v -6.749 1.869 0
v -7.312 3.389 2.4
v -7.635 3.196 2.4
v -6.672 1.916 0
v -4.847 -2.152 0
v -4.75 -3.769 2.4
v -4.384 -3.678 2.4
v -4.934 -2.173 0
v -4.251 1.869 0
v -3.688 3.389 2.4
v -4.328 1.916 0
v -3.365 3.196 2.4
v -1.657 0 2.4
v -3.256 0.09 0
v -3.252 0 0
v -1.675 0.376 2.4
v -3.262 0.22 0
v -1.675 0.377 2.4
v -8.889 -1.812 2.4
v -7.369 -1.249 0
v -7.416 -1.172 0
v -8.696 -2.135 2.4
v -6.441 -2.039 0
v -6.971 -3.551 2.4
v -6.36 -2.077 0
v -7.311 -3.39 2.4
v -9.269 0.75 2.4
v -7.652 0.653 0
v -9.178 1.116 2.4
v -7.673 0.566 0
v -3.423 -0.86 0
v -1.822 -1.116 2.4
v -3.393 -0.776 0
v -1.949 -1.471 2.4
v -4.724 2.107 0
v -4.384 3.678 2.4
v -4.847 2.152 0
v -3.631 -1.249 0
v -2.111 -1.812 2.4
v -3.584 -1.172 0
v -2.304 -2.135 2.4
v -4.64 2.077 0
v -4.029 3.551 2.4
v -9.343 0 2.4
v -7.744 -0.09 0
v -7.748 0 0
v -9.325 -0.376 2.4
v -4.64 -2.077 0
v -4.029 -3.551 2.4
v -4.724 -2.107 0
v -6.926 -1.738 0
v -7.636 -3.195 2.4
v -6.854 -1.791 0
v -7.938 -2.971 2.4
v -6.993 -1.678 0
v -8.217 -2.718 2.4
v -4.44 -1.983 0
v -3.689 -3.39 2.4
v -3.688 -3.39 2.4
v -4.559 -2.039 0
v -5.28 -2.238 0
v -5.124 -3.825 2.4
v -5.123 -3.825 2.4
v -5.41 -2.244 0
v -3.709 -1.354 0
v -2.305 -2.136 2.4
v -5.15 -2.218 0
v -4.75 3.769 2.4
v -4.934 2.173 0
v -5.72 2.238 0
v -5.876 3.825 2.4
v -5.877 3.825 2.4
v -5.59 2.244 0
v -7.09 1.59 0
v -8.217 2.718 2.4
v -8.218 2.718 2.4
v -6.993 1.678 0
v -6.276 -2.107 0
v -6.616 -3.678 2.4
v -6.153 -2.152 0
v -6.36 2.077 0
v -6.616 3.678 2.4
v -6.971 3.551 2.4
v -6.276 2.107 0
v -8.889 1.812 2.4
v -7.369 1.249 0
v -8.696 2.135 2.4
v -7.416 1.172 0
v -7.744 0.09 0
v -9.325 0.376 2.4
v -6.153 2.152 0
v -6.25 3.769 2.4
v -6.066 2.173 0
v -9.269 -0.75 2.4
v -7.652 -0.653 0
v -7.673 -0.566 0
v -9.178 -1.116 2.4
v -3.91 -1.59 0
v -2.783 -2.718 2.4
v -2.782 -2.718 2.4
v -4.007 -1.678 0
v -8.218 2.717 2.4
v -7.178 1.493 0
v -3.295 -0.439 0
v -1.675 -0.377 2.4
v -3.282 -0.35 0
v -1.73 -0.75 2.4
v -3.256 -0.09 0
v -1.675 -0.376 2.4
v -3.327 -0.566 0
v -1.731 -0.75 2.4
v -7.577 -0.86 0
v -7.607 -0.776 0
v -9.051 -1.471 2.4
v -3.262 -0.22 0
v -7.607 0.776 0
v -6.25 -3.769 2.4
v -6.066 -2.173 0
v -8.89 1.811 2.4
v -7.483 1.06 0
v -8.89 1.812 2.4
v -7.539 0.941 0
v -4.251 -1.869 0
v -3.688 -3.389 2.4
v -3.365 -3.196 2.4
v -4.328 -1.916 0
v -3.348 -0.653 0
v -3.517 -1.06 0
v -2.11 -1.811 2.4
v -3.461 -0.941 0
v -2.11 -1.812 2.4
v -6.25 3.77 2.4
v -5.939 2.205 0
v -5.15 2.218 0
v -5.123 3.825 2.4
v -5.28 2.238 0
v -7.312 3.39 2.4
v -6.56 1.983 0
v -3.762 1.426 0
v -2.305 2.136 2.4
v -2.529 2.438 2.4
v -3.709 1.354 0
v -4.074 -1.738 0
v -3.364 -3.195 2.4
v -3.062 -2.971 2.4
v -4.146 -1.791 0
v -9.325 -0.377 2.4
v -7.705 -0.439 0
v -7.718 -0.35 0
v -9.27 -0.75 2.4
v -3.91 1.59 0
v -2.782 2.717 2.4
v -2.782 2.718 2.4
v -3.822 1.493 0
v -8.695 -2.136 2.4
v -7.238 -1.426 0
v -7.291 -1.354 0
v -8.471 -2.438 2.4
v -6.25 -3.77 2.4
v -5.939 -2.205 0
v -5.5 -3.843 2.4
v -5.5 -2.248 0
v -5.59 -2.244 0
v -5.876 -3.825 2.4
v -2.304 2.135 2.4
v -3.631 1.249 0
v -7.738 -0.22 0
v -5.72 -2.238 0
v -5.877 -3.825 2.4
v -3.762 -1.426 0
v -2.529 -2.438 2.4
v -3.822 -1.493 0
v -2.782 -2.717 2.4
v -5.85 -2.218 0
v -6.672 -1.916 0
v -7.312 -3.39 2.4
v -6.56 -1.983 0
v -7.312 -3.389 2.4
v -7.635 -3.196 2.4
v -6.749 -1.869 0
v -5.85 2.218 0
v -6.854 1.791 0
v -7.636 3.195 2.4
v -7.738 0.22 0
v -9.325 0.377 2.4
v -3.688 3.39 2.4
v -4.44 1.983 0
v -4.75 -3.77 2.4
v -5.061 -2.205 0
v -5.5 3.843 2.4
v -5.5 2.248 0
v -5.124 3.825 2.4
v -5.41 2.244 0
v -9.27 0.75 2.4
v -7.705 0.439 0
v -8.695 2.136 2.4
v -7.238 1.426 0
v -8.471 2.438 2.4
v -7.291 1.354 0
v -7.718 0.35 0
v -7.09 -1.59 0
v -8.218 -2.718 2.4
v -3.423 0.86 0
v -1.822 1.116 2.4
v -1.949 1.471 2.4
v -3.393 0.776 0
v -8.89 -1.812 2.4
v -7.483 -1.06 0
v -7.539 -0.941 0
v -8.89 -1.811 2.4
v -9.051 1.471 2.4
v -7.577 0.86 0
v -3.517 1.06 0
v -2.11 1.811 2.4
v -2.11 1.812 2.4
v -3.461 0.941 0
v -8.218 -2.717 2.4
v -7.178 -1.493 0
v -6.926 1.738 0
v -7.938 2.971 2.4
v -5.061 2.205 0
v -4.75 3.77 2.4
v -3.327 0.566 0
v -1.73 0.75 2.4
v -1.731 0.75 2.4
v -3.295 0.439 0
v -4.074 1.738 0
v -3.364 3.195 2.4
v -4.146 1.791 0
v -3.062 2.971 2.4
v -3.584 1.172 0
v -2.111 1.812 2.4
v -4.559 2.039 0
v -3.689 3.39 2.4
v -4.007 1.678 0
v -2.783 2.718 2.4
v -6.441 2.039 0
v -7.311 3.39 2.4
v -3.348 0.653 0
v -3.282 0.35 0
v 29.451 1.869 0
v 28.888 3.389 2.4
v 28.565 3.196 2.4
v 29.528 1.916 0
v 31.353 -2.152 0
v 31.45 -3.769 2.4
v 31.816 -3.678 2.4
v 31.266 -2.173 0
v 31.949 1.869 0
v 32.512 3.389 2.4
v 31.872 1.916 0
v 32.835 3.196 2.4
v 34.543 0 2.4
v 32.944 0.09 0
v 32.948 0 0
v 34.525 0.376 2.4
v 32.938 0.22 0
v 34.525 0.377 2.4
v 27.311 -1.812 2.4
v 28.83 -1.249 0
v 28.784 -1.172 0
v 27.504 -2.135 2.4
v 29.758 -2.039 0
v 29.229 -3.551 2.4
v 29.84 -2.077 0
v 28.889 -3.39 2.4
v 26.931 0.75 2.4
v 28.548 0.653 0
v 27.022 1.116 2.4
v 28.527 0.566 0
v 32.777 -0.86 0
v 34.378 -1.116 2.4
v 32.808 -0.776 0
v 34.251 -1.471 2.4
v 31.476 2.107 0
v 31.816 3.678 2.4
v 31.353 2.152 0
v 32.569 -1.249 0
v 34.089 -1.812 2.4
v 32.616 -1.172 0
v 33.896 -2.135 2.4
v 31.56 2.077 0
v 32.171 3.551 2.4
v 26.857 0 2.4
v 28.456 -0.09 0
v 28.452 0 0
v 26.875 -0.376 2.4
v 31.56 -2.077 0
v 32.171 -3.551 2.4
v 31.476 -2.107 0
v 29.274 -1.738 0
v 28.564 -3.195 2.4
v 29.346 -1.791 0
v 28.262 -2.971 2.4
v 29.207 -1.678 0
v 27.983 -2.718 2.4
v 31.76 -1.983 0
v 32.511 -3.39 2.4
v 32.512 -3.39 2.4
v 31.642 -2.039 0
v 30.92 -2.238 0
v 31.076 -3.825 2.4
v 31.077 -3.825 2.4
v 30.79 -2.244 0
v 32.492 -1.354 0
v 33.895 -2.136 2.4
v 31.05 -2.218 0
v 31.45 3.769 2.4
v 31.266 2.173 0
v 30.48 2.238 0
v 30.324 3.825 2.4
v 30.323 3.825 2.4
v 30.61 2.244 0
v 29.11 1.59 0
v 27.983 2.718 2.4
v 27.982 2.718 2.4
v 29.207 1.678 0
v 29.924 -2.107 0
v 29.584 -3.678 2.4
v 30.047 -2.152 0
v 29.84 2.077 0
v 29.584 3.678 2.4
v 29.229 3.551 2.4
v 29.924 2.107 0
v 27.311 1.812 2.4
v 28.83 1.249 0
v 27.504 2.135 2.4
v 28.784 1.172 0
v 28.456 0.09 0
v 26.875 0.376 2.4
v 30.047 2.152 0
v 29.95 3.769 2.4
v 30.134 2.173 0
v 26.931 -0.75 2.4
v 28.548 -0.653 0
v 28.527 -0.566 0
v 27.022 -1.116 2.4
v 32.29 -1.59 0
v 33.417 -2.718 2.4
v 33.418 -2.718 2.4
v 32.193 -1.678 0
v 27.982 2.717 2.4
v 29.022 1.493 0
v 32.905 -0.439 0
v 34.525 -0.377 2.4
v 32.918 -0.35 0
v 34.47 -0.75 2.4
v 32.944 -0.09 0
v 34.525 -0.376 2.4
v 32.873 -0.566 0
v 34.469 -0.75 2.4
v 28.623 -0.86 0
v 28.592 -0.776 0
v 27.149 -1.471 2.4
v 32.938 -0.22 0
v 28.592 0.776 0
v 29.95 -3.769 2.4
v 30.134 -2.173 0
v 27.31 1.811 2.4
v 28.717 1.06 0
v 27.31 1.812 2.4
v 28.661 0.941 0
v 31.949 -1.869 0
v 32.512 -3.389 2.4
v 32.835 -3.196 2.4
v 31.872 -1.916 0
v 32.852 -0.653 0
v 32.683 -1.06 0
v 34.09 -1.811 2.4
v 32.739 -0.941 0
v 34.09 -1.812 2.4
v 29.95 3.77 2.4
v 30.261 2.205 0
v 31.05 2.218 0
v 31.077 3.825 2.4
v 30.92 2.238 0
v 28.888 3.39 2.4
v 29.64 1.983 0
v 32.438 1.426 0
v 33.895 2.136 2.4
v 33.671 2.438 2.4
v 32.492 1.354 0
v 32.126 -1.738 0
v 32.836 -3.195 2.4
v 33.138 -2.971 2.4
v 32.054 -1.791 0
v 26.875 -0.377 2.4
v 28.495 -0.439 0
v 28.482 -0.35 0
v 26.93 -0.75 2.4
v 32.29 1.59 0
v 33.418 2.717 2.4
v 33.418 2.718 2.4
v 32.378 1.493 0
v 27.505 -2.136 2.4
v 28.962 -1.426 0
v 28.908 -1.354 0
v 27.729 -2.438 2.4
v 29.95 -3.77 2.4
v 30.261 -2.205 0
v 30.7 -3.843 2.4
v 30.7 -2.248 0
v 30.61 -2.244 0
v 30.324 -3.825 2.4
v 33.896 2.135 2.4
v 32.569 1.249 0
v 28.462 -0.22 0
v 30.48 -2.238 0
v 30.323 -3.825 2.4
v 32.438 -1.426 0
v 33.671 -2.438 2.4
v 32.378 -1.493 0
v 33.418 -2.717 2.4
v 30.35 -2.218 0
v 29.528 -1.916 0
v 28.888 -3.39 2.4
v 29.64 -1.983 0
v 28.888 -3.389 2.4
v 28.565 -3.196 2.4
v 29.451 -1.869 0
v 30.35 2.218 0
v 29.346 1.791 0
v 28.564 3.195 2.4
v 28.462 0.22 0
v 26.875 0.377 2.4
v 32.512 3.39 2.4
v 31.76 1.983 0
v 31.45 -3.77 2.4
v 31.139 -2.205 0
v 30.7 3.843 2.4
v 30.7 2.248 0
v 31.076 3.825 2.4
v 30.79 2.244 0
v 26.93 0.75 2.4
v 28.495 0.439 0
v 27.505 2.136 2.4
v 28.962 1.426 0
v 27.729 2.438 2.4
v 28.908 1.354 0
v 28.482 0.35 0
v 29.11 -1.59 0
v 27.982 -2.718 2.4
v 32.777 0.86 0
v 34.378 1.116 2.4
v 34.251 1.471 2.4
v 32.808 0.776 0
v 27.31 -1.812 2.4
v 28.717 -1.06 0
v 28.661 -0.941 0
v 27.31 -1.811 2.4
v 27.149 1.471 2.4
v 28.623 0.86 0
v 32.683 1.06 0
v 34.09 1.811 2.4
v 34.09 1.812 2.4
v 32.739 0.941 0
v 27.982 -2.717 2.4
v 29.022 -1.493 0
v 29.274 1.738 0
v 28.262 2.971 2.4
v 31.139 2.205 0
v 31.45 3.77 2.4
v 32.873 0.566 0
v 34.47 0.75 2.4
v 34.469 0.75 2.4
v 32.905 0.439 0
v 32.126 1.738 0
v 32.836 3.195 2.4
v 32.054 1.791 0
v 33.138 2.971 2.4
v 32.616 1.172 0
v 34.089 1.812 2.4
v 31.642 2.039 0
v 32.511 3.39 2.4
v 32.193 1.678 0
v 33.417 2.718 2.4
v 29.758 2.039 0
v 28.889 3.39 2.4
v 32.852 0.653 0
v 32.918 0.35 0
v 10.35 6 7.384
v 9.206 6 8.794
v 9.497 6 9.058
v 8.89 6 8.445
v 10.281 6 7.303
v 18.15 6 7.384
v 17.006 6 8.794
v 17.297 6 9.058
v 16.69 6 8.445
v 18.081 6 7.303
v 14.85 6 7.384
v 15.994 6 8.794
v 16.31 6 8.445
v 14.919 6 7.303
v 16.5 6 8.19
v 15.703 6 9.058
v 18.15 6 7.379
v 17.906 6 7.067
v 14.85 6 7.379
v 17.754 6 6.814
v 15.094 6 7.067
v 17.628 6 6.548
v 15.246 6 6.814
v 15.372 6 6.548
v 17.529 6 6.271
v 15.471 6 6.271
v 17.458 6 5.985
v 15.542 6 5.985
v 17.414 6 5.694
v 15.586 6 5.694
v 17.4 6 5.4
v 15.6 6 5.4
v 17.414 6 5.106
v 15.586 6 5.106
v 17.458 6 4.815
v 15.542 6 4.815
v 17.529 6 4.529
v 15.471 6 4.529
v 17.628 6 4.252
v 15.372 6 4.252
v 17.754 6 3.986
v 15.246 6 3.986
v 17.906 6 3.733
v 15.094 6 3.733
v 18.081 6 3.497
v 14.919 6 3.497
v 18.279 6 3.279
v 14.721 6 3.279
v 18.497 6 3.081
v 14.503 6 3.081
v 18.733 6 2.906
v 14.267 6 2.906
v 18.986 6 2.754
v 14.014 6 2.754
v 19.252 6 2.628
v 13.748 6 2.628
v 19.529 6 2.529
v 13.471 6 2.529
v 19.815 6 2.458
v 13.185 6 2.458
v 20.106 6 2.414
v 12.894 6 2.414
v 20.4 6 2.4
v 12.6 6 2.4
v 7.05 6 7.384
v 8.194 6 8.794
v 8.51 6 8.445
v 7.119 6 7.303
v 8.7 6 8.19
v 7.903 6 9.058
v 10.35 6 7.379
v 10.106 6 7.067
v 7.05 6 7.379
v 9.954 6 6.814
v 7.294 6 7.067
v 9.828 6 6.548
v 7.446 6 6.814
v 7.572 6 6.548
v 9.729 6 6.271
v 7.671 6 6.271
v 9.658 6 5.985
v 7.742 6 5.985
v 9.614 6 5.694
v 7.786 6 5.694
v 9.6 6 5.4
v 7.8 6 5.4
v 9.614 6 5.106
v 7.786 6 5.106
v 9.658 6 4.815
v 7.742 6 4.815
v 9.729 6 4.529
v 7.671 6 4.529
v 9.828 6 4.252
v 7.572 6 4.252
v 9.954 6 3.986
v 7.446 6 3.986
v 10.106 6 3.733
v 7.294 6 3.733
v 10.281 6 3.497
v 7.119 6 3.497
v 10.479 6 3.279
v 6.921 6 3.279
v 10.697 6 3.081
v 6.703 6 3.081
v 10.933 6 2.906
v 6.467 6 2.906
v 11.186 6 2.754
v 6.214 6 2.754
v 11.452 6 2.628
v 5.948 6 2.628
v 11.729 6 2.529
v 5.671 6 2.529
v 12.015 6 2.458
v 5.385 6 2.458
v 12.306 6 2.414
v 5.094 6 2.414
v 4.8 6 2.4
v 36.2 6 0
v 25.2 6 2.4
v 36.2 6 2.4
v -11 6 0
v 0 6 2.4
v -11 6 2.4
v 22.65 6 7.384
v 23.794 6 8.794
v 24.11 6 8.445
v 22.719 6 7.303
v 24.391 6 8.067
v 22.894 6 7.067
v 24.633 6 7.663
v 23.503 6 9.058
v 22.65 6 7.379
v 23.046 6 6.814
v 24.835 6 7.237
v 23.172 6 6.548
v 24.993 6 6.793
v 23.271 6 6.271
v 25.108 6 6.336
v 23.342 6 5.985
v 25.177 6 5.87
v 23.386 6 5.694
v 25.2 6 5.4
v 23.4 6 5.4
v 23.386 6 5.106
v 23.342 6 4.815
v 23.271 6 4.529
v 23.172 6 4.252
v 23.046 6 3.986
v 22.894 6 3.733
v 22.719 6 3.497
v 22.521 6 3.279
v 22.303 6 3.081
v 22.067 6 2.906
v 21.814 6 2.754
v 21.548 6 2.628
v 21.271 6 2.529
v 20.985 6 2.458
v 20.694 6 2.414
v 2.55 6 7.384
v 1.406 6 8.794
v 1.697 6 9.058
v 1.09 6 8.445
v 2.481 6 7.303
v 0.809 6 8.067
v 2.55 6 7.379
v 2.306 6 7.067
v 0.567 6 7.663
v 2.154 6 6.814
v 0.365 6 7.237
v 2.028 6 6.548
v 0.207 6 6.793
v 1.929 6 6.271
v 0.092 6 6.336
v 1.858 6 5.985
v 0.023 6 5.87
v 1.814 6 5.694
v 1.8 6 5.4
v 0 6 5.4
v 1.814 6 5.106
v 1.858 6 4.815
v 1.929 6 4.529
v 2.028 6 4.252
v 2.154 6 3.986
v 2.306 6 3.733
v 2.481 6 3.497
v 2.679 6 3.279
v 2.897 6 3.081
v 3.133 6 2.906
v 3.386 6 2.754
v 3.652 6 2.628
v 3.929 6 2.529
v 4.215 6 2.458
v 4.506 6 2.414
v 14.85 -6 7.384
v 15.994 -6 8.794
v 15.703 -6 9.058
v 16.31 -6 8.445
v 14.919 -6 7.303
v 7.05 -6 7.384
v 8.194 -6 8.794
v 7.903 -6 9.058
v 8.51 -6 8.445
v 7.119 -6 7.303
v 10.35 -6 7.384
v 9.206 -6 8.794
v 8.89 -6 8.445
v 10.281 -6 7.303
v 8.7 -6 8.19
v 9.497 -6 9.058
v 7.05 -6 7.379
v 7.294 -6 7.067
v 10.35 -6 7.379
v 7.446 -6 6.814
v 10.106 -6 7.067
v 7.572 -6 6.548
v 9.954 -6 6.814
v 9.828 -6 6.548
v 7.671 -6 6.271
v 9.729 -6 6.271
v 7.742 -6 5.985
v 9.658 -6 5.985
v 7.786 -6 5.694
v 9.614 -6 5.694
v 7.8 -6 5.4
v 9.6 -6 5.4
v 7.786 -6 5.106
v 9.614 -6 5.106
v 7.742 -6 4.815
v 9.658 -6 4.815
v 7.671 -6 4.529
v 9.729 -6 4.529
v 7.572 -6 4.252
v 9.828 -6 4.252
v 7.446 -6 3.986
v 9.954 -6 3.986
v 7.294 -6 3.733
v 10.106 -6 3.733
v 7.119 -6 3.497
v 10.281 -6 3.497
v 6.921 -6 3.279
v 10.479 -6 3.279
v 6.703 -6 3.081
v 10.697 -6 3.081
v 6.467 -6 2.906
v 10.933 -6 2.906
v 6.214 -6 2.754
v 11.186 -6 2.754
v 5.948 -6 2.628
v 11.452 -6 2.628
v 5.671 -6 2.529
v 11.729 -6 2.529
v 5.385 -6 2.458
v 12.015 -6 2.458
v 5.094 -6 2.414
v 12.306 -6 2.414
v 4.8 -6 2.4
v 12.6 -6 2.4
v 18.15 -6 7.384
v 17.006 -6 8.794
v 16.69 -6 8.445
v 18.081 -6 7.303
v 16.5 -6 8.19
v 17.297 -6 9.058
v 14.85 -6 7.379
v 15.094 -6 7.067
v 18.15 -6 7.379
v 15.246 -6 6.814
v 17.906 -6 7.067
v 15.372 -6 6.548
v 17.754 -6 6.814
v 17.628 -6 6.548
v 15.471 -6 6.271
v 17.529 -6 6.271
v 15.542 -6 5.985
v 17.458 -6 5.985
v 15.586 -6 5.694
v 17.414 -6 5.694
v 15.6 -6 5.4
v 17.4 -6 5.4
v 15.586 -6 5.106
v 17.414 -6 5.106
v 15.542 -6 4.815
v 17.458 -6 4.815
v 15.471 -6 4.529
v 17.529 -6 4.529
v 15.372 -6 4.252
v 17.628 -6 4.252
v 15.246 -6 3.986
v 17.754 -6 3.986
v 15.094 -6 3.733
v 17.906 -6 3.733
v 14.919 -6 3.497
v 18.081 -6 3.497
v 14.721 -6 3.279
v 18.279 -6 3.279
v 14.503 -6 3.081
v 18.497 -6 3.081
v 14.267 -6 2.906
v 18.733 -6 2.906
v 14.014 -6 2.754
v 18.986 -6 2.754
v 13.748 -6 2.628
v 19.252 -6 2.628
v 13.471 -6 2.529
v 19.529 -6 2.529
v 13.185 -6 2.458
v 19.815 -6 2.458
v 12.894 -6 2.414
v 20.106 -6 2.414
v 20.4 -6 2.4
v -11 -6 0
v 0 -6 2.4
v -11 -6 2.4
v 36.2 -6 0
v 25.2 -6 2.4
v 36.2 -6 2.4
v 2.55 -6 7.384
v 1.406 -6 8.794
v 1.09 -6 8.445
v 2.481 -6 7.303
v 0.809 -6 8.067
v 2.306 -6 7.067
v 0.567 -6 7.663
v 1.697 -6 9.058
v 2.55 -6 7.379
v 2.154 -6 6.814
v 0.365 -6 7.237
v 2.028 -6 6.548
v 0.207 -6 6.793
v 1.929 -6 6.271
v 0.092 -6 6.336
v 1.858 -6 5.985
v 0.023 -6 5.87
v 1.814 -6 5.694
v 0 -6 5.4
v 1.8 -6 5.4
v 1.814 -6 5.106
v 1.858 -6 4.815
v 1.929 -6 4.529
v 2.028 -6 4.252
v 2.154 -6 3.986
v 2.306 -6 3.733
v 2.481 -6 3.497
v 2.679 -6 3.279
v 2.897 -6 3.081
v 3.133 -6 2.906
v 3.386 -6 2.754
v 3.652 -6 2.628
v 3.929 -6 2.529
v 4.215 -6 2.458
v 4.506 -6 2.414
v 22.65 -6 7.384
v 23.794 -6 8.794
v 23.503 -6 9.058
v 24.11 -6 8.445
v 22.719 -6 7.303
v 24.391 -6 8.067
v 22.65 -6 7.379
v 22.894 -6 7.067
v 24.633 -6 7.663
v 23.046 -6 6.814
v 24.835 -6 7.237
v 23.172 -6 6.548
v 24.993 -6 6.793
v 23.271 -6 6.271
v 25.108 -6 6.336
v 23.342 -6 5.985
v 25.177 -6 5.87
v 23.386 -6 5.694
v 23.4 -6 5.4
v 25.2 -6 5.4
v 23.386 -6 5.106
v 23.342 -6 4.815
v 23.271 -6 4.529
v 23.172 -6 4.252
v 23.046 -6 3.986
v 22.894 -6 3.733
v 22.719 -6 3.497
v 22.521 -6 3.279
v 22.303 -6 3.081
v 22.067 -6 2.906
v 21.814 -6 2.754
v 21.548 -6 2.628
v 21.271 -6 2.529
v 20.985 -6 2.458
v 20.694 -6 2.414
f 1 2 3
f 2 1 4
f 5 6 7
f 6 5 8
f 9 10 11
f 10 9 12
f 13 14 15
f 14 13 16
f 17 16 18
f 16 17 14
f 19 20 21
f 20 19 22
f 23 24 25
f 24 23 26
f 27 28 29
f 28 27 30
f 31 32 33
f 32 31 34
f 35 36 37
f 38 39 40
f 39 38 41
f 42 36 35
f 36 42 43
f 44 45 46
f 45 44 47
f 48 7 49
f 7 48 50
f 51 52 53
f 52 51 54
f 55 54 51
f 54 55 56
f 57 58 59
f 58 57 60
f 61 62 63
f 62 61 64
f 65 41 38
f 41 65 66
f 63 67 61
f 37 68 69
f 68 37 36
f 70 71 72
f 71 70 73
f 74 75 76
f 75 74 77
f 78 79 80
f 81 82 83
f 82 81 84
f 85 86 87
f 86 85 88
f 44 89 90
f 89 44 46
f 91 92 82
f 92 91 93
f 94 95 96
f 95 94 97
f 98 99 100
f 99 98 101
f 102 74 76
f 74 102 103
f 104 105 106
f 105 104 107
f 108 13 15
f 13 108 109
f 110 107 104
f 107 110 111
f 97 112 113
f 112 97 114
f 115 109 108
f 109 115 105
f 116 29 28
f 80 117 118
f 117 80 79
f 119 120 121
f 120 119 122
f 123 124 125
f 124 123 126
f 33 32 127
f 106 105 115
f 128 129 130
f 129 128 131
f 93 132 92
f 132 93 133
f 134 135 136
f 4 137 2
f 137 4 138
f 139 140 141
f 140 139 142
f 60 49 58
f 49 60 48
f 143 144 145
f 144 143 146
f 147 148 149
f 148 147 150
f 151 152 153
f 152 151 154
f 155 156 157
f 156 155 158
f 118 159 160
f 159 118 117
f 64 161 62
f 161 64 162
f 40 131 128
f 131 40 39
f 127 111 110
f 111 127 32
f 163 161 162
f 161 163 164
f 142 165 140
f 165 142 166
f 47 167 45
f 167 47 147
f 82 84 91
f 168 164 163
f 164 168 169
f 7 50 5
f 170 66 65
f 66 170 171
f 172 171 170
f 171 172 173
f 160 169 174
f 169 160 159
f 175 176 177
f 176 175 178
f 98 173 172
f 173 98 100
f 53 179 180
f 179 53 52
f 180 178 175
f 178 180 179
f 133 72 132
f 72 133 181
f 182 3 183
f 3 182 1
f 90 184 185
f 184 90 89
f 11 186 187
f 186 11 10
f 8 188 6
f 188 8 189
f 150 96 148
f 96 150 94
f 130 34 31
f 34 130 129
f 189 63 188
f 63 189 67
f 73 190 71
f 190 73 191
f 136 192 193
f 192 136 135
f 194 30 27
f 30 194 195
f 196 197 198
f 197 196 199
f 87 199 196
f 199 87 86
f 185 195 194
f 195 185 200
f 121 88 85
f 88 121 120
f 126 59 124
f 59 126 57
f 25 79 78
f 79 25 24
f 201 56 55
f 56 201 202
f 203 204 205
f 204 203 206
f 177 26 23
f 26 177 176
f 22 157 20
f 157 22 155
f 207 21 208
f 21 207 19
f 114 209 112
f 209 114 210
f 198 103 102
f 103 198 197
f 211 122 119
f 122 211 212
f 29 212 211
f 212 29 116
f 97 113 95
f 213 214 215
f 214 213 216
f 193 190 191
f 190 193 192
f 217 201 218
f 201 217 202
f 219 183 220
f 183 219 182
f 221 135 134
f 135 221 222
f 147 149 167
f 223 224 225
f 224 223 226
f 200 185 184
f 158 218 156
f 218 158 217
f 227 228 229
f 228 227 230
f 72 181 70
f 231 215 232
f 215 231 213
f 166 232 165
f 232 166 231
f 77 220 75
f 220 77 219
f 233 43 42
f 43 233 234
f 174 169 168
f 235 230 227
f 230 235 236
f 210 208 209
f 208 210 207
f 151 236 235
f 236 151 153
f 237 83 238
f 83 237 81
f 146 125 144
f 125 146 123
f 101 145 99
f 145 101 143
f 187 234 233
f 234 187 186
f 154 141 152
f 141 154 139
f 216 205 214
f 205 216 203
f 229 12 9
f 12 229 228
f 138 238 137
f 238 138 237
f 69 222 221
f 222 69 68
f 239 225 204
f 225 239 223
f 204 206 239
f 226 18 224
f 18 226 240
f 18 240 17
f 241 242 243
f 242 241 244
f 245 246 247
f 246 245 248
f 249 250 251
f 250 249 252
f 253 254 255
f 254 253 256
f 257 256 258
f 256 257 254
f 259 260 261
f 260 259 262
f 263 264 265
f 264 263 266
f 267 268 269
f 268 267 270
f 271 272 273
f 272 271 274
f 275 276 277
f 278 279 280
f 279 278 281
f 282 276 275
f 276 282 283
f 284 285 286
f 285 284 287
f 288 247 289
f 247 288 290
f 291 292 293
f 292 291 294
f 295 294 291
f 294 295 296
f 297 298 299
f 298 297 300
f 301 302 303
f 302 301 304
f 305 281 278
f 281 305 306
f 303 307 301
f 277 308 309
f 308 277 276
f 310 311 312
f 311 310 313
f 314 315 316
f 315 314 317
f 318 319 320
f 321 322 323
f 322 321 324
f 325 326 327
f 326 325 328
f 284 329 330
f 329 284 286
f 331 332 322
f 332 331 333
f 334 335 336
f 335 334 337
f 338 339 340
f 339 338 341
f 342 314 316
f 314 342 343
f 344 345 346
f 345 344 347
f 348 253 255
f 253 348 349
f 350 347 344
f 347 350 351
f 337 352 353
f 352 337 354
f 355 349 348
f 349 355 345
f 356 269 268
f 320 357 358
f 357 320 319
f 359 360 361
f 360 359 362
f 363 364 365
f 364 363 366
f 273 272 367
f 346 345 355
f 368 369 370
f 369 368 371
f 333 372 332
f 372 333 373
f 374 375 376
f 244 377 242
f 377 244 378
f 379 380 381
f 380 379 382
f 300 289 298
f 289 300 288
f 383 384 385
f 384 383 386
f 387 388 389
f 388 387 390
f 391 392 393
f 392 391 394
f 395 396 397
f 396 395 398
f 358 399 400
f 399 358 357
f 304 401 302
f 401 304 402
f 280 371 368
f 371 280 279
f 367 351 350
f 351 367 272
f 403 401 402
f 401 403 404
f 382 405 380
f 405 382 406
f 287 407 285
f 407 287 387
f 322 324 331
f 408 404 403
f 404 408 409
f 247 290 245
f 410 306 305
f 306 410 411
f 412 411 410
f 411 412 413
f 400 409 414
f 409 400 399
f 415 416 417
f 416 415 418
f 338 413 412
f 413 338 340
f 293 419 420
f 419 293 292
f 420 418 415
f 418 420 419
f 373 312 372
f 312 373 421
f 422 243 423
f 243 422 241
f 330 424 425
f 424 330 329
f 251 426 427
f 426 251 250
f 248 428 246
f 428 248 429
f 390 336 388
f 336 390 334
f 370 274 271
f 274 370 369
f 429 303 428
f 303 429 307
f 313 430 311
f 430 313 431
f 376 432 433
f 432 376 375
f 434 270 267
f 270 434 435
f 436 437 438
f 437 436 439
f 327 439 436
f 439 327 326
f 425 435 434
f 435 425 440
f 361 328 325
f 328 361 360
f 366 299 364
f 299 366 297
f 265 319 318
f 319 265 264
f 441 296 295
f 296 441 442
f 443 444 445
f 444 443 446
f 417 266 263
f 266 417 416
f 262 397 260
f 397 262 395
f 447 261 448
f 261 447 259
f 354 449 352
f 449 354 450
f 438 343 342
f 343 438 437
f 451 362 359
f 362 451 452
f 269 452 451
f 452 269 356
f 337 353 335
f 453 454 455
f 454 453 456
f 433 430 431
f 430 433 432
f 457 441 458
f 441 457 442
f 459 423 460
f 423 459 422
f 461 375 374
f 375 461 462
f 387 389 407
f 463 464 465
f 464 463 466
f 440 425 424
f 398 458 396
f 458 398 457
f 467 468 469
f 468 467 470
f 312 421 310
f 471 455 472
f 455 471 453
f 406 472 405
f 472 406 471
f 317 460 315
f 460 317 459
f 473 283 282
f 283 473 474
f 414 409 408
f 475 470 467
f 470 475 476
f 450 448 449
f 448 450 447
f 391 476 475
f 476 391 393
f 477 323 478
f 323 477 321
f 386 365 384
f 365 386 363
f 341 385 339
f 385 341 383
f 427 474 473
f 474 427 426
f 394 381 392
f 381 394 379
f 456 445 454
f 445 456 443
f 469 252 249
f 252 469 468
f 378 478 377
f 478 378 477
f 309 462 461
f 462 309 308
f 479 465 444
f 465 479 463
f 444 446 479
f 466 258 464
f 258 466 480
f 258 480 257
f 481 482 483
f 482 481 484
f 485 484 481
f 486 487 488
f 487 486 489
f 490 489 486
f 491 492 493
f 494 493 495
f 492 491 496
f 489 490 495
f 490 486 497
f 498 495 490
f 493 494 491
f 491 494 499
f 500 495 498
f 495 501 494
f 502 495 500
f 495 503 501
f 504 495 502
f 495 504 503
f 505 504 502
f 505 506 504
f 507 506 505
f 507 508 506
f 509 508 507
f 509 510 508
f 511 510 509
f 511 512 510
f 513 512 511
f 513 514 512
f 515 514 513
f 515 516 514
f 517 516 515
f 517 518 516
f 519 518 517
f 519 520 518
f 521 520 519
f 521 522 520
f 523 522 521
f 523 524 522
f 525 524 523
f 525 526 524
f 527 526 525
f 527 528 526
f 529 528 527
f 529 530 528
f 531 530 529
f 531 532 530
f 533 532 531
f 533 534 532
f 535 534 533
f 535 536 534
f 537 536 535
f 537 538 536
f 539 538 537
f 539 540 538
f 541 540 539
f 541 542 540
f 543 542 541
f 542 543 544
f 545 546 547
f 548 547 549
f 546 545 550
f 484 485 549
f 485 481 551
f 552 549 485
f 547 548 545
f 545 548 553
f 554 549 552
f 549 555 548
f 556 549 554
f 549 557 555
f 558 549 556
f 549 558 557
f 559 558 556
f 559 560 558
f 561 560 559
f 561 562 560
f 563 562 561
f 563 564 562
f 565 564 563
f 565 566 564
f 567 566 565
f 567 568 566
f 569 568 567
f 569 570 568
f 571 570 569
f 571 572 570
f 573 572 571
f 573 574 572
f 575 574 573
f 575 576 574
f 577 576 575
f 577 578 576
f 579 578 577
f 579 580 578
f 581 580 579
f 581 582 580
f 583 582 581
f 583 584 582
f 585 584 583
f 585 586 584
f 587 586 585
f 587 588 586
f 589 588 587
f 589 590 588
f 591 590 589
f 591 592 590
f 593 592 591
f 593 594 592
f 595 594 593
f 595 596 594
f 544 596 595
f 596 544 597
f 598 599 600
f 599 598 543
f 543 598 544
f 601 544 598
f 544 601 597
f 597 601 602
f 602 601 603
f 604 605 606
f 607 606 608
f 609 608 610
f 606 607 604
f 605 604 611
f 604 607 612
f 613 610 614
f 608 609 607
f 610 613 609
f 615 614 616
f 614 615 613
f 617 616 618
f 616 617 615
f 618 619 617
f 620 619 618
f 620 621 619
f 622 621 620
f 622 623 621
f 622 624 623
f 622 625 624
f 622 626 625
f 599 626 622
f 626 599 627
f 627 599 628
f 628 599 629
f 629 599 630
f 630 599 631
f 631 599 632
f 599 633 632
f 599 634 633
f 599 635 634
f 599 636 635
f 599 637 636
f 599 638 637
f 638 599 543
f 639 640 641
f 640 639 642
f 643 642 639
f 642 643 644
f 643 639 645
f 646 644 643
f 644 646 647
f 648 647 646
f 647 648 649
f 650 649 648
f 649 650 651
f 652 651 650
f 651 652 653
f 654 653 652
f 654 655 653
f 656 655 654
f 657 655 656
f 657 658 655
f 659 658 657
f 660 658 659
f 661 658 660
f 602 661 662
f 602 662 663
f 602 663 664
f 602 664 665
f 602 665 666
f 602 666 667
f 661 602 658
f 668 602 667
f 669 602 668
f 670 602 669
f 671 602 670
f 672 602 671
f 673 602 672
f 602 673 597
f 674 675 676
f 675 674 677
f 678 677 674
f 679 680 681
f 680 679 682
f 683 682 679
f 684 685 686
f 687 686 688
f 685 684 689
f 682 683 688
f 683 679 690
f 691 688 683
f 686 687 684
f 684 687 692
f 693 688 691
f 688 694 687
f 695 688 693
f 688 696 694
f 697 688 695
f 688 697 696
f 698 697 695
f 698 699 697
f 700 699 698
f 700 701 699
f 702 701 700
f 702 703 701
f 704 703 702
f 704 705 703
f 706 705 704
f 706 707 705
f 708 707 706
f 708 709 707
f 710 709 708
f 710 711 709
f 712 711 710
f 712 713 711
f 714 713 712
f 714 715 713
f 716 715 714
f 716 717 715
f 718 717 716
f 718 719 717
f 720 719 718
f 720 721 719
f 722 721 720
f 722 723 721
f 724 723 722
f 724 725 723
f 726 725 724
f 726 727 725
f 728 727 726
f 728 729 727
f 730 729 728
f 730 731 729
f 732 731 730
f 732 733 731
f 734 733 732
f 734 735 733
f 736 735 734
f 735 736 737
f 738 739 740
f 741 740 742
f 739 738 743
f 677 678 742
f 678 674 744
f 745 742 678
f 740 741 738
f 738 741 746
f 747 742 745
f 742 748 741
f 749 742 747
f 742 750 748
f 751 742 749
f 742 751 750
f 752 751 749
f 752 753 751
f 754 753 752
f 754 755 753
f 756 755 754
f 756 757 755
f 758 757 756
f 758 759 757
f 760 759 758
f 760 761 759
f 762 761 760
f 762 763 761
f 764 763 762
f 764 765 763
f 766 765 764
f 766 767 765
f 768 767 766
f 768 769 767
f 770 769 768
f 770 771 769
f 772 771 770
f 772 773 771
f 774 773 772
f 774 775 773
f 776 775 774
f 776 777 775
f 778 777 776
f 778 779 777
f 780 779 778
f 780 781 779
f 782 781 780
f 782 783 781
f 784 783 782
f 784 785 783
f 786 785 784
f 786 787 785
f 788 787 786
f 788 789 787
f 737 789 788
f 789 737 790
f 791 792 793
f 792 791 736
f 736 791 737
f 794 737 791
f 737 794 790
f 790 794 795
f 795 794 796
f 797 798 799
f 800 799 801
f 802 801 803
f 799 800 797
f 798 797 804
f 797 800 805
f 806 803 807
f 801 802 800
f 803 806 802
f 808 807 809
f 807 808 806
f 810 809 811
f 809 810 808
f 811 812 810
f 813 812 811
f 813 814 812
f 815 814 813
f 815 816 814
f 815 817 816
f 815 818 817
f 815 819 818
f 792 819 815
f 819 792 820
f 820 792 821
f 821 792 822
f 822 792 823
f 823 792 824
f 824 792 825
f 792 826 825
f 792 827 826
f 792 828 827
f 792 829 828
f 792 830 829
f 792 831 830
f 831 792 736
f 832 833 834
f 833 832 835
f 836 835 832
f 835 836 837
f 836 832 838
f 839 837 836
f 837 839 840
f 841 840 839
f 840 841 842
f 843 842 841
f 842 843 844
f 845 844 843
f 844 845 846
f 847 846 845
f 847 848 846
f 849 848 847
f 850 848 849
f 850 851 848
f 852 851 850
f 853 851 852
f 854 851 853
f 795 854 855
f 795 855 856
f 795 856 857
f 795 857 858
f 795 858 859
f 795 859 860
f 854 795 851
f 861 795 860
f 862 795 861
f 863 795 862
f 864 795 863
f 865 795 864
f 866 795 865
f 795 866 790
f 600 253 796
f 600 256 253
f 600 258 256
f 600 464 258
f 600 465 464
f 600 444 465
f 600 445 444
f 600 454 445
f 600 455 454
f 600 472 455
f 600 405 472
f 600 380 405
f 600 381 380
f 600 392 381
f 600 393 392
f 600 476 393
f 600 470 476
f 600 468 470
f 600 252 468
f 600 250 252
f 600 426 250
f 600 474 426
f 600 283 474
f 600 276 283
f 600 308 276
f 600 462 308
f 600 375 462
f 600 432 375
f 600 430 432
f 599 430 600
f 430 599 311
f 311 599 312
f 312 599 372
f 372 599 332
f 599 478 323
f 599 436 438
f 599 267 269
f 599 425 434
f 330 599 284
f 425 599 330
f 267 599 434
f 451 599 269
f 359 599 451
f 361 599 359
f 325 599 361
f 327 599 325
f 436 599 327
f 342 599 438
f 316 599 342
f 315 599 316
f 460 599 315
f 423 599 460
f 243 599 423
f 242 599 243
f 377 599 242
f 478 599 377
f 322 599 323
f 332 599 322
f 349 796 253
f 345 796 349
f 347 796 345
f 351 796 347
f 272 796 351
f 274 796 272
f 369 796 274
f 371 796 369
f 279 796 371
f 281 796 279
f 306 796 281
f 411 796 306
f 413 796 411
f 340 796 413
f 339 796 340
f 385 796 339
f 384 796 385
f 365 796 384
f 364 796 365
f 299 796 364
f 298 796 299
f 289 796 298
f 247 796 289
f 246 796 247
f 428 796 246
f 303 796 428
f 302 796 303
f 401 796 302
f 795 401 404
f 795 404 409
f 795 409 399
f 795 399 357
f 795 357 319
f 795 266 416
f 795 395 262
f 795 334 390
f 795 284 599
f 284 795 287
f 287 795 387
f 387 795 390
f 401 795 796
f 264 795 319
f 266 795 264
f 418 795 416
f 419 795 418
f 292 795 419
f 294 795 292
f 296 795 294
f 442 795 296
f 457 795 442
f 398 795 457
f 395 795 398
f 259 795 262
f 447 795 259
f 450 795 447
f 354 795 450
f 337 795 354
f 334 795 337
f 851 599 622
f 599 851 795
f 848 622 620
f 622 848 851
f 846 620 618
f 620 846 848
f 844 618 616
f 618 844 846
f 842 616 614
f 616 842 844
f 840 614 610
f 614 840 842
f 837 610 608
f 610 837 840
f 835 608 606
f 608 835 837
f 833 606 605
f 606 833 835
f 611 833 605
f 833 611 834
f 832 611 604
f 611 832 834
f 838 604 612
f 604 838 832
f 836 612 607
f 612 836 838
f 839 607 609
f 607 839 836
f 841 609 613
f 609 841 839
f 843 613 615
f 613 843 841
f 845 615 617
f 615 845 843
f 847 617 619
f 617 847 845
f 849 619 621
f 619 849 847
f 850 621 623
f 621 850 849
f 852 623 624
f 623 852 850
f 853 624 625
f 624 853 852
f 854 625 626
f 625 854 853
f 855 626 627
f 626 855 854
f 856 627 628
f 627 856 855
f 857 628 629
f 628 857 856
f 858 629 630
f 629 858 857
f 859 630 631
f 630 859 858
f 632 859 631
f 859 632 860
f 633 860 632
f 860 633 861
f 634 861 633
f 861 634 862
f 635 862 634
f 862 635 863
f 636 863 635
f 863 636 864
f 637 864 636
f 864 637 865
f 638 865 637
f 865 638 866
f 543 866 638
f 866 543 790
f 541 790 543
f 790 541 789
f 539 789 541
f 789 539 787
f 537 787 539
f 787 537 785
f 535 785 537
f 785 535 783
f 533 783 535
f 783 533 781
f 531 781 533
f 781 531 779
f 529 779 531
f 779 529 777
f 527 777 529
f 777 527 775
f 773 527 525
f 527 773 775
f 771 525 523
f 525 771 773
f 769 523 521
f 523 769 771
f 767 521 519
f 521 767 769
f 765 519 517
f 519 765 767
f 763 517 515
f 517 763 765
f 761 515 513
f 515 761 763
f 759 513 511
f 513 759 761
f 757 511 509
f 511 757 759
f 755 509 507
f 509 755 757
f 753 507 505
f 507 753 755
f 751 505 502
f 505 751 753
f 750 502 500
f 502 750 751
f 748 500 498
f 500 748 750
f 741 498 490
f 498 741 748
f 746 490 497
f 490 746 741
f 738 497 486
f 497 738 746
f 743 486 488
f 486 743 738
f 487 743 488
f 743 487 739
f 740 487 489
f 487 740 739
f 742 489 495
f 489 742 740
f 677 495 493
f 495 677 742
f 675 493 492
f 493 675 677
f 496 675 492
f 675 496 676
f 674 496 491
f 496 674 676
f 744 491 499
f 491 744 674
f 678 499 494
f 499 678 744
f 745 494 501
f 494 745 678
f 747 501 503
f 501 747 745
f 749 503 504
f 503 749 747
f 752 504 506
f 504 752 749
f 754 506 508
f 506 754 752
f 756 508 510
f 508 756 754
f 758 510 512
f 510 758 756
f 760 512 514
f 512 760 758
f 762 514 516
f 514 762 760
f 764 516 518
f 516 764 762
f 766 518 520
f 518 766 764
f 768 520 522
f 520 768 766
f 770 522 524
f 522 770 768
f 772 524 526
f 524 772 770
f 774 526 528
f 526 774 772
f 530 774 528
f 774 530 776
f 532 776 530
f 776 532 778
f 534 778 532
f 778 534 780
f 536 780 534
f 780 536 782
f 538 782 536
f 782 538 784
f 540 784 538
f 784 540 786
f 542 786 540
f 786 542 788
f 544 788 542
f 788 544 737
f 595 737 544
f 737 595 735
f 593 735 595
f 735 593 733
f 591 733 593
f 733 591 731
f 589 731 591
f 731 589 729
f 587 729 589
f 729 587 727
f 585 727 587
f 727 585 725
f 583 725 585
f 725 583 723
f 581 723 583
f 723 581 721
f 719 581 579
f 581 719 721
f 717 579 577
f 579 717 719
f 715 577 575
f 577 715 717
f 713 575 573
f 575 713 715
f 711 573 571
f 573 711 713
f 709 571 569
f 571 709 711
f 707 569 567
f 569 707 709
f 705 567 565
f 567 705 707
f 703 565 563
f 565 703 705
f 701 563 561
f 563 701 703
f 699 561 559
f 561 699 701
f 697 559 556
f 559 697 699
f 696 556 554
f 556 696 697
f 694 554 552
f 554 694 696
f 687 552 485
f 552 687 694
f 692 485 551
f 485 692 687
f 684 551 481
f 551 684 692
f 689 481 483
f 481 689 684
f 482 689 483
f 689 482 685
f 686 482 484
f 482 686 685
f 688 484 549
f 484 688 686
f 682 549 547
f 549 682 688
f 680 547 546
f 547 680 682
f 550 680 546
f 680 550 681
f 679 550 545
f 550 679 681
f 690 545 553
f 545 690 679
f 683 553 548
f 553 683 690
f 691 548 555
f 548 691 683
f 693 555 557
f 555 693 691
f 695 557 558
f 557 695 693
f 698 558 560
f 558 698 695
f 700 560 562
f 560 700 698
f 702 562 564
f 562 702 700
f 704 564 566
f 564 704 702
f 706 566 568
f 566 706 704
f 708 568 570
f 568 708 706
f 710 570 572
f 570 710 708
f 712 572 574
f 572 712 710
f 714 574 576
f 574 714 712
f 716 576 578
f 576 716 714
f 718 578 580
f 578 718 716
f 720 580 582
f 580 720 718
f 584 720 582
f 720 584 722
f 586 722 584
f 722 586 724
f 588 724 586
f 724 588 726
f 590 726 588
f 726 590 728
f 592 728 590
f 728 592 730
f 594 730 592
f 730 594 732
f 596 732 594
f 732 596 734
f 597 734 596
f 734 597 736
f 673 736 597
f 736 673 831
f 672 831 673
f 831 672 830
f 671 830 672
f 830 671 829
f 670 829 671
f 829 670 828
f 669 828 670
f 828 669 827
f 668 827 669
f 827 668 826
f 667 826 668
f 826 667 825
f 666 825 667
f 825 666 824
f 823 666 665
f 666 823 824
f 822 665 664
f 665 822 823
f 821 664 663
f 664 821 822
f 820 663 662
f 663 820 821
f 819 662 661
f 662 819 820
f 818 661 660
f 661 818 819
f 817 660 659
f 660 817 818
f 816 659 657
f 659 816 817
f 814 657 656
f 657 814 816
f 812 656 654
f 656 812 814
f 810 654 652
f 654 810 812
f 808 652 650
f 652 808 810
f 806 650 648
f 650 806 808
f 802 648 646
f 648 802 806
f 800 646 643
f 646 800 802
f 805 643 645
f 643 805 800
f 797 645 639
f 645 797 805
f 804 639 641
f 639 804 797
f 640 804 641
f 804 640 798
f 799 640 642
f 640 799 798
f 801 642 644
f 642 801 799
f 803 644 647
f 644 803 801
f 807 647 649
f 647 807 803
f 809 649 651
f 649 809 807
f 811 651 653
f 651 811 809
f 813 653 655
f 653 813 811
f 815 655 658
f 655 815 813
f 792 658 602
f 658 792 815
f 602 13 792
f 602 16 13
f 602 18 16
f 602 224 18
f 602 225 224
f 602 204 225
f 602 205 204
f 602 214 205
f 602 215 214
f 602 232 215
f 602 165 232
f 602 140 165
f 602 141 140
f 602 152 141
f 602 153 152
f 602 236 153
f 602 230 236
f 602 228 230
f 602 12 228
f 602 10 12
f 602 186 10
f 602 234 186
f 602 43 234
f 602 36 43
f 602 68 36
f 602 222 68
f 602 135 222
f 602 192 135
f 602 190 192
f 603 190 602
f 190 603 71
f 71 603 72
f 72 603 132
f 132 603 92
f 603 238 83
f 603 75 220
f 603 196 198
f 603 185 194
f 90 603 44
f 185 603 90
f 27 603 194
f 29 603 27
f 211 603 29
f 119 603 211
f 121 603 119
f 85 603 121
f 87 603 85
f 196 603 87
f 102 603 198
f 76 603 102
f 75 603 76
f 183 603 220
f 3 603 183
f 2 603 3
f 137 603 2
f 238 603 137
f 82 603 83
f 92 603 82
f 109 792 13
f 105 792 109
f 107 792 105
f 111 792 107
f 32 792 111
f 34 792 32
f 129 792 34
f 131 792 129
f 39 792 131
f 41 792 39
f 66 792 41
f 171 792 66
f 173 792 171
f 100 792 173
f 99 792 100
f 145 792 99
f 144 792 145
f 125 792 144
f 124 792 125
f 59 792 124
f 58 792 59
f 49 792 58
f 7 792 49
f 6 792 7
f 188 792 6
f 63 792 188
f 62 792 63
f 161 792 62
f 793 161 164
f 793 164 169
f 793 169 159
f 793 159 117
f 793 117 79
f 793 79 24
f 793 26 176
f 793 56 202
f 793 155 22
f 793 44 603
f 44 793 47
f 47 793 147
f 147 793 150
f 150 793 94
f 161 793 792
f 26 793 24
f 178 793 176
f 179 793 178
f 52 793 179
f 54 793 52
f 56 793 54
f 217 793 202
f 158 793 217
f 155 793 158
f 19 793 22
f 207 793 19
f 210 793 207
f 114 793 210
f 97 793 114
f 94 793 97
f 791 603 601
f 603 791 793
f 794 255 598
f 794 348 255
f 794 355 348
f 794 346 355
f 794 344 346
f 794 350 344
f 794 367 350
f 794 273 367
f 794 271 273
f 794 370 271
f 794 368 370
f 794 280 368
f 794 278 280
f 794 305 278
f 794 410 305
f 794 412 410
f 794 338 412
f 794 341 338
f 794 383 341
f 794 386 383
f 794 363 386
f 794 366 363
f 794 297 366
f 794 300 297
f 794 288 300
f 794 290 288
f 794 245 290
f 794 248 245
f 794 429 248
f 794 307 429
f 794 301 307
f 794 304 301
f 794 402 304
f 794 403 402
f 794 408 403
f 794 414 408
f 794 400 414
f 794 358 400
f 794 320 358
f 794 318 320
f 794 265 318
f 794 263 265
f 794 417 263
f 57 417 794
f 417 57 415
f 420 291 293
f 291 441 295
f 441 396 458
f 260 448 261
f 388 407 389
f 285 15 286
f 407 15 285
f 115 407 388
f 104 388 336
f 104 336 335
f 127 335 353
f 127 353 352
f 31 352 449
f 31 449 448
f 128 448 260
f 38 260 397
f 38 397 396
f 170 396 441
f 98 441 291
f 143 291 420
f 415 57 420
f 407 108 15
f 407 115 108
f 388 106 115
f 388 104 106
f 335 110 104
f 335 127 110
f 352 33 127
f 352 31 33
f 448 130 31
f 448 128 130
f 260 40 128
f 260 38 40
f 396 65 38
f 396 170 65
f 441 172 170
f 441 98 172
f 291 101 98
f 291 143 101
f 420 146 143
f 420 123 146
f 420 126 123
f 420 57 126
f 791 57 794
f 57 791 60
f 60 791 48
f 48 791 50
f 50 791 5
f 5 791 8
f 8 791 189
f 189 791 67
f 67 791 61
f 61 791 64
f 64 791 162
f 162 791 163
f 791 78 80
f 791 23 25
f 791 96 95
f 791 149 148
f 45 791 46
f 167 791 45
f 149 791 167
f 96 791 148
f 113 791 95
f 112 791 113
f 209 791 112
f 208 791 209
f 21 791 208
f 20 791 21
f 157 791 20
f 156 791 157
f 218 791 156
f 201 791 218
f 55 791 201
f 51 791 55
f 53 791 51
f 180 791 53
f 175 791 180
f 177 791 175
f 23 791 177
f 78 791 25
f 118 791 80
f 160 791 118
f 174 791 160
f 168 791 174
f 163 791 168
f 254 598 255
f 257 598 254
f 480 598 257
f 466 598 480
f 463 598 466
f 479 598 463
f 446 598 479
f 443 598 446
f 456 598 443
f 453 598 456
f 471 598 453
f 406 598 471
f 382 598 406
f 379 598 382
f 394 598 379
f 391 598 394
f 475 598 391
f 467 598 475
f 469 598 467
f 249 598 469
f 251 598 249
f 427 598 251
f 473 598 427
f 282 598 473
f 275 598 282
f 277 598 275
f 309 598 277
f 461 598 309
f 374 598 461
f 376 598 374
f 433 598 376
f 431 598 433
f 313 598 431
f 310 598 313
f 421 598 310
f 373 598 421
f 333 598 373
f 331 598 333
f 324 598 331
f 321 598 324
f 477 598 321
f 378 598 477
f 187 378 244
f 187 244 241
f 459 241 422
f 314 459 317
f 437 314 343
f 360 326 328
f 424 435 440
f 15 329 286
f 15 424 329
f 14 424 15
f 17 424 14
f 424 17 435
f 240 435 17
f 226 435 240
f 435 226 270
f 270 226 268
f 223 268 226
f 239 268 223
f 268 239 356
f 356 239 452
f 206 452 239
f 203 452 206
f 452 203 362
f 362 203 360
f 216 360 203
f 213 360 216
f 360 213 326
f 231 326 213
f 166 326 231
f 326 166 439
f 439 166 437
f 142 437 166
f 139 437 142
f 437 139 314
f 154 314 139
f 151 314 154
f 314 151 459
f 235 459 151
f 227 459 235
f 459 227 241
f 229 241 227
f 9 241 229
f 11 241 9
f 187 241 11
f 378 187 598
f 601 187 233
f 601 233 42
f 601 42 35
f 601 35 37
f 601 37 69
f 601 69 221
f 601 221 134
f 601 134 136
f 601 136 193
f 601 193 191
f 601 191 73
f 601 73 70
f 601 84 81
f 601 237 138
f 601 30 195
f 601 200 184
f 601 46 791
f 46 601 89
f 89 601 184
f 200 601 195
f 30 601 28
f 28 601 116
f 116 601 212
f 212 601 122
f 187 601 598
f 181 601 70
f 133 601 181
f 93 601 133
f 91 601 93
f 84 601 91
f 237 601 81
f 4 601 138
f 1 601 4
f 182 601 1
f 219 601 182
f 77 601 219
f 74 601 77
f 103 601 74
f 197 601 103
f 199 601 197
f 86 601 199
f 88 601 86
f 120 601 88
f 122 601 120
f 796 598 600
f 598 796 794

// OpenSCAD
// Cable Clip — snap cables into a row of C-shaped holders.
// Stick it under a desk with double-sided tape, or screw it down.
// Print flat (as rendered). PETG is best for the snap; PLA works.

/* [Cables] */
// Diameter of the cable you want to hold (mm). Measure it, add ~0.3.
cable_d = 6;            // [2:0.5:20]
// How many cables side by side
cable_count = 3;        // [1:1:10]
// Opening width as a fraction of cable diameter (smaller = tighter snap)
opening_ratio = 0.75;   // [0.5:0.05:0.95]

/* [Body] */
// Length of each holder along the cable (mm)
clip_len = 12;          // [6:1:40]
// Wall thickness around the cable (mm)
wall = 1.8;             // [1.2:0.2:4]
// Base plate thickness (mm)
base_t = 2.4;           // [1.6:0.2:5]
// Add screw ears at both ends
screw_ears = true;
// Screw shank diameter (mm). 3.5 fits common #6 / 3.5mm wood screws.
screw_d = 3.5;          // [2:0.1:6]

/* [Hidden] */
$fn = 64;
r_in = cable_d / 2;
r_out = r_in + wall;
pitch = 2 * r_out - wall;            // neighbouring rings share a wall
row_len = (cable_count - 1) * pitch + 2 * r_out;
ear = screw_ears ? screw_d * 2 + 4 : 0;
top = base_t + r_in + r_out;
open_w = cable_d * opening_ratio;
mouth_y = base_t + r_in + sqrt(r_in * r_in - open_w * open_w / 4);

function cx(i) = r_out + i * pitch;

module profile() {
    difference() {
        union() {
            translate([-ear, 0]) square([row_len + 2 * ear, base_t]);
            for (i = [0 : cable_count - 1]) {
                translate([cx(i), base_t + r_in]) circle(r_out);
                translate([cx(i) - r_out, 0]) square([2 * r_out, base_t + r_in]);
            }
        }
        for (i = [0 : cable_count - 1]) {
            translate([cx(i), base_t + r_in]) circle(r_in);
            // the ring stays closed until it narrows to open_w, then a
            // funnel-shaped mouth makes pushing the cable in easy
            polygon([
                [cx(i) - open_w / 2, base_t + r_in],
                [cx(i) + open_w / 2, base_t + r_in],
                [cx(i) + open_w / 2, mouth_y],
                [cx(i) + open_w / 2 + wall * 0.8, top + 0.01],
                [cx(i) - open_w / 2 - wall * 0.8, top + 0.01],
                [cx(i) - open_w / 2, mouth_y]
            ]);
        }
    }
}

difference() {
    rotate([90, 0, 0]) linear_extrude(clip_len, center = true) profile();
    if (screw_ears)
        for (x = [-ear / 2, row_len + ear / 2])
            translate([x, 0, -1]) {
                cylinder(d = screw_d, h = base_t + 2);
                // countersink
                translate([0, 0, base_t + 1 - screw_d * 0.9])
                    cylinder(d1 = screw_d, d2 = screw_d * 2.2, h = screw_d * 0.9 + 0.01);
            }
}
